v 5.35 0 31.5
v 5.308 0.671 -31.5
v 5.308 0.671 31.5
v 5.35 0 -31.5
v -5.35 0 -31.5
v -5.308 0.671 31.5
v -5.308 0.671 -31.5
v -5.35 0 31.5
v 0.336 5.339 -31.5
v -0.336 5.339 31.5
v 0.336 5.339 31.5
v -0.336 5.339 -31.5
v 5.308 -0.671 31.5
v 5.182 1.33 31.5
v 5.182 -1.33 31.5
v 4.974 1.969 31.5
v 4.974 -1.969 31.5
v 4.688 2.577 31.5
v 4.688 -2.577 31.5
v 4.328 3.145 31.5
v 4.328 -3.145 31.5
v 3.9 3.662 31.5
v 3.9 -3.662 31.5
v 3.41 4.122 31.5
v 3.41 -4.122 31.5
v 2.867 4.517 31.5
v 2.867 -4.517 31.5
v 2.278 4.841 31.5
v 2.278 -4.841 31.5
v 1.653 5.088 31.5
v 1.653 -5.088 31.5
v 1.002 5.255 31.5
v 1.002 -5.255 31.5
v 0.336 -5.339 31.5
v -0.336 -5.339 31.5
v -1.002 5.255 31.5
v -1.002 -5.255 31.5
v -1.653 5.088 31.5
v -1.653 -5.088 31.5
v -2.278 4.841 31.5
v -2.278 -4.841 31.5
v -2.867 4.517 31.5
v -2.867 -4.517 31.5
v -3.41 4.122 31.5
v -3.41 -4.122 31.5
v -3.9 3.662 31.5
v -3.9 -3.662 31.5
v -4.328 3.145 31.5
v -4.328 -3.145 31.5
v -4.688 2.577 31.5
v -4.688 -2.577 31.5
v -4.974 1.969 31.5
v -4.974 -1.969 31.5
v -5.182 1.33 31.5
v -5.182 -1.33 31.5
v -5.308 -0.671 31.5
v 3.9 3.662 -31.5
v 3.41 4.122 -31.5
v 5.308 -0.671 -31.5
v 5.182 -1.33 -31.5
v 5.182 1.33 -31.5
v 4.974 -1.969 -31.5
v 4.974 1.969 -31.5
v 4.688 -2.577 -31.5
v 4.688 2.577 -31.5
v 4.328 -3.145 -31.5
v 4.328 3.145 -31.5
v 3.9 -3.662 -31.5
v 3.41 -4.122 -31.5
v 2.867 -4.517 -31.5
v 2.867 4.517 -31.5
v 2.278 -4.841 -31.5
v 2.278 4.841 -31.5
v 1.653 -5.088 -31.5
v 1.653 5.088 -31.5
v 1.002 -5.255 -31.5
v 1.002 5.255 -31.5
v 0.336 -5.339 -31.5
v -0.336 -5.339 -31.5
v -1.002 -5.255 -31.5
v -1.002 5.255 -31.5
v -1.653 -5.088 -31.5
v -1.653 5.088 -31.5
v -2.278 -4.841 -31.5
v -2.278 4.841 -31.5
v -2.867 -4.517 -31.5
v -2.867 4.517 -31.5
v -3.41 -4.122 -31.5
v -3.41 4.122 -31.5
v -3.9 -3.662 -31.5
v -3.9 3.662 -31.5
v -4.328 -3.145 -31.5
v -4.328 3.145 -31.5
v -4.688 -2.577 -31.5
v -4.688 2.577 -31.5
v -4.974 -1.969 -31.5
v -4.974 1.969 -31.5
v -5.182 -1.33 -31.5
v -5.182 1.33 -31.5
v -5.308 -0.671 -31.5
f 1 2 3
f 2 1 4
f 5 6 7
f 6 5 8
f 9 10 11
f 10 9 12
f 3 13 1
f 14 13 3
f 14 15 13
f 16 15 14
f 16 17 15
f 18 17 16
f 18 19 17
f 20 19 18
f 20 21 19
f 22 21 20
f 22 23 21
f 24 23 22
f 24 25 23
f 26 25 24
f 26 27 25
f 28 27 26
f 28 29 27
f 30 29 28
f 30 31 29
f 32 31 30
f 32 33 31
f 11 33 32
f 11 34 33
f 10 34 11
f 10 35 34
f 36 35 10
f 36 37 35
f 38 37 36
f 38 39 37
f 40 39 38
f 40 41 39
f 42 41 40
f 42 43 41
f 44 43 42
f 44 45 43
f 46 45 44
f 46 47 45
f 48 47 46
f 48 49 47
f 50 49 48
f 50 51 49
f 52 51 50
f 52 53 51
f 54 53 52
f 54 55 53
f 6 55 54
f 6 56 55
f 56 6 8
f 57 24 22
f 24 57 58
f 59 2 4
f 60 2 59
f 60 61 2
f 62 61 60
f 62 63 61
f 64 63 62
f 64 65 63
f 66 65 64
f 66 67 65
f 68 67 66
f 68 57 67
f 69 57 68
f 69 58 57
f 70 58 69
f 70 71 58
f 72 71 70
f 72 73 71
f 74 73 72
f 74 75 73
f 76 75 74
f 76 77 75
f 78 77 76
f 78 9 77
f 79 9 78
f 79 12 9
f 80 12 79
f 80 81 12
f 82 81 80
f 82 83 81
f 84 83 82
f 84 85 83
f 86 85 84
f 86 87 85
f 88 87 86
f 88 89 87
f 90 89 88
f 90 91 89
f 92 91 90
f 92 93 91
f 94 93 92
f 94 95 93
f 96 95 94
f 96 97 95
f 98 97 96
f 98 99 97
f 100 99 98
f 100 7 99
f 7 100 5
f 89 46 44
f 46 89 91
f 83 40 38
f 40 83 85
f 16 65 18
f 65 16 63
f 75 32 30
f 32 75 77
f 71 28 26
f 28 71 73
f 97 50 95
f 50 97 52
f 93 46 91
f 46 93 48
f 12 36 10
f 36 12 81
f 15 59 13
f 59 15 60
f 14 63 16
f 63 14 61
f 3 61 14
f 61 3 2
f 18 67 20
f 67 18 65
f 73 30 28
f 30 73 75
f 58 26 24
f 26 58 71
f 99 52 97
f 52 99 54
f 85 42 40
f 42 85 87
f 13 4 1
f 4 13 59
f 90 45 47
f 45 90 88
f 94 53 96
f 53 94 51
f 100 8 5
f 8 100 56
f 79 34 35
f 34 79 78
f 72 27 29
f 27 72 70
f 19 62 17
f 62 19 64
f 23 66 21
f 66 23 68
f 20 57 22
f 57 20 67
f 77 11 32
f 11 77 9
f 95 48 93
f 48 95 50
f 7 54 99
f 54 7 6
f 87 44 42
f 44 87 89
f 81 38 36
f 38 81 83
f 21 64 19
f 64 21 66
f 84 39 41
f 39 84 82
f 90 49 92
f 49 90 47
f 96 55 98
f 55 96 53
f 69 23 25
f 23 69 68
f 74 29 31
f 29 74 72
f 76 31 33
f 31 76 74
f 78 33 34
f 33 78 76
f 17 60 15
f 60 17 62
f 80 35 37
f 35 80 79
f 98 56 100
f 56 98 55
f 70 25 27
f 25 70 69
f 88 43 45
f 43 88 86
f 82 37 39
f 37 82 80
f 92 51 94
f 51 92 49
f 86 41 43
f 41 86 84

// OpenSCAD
$fn = 50;


difference() {
	union() {
		translate(v = [0, 0, -31.5000000000]) {
			cylinder(h = 63, r = 5.3500000000);
		}
	}
	union() {
		translate(v = [0, 0, -100.0000000000]) {
			cylinder(h = 200, r = 0);
		}
	}
}
